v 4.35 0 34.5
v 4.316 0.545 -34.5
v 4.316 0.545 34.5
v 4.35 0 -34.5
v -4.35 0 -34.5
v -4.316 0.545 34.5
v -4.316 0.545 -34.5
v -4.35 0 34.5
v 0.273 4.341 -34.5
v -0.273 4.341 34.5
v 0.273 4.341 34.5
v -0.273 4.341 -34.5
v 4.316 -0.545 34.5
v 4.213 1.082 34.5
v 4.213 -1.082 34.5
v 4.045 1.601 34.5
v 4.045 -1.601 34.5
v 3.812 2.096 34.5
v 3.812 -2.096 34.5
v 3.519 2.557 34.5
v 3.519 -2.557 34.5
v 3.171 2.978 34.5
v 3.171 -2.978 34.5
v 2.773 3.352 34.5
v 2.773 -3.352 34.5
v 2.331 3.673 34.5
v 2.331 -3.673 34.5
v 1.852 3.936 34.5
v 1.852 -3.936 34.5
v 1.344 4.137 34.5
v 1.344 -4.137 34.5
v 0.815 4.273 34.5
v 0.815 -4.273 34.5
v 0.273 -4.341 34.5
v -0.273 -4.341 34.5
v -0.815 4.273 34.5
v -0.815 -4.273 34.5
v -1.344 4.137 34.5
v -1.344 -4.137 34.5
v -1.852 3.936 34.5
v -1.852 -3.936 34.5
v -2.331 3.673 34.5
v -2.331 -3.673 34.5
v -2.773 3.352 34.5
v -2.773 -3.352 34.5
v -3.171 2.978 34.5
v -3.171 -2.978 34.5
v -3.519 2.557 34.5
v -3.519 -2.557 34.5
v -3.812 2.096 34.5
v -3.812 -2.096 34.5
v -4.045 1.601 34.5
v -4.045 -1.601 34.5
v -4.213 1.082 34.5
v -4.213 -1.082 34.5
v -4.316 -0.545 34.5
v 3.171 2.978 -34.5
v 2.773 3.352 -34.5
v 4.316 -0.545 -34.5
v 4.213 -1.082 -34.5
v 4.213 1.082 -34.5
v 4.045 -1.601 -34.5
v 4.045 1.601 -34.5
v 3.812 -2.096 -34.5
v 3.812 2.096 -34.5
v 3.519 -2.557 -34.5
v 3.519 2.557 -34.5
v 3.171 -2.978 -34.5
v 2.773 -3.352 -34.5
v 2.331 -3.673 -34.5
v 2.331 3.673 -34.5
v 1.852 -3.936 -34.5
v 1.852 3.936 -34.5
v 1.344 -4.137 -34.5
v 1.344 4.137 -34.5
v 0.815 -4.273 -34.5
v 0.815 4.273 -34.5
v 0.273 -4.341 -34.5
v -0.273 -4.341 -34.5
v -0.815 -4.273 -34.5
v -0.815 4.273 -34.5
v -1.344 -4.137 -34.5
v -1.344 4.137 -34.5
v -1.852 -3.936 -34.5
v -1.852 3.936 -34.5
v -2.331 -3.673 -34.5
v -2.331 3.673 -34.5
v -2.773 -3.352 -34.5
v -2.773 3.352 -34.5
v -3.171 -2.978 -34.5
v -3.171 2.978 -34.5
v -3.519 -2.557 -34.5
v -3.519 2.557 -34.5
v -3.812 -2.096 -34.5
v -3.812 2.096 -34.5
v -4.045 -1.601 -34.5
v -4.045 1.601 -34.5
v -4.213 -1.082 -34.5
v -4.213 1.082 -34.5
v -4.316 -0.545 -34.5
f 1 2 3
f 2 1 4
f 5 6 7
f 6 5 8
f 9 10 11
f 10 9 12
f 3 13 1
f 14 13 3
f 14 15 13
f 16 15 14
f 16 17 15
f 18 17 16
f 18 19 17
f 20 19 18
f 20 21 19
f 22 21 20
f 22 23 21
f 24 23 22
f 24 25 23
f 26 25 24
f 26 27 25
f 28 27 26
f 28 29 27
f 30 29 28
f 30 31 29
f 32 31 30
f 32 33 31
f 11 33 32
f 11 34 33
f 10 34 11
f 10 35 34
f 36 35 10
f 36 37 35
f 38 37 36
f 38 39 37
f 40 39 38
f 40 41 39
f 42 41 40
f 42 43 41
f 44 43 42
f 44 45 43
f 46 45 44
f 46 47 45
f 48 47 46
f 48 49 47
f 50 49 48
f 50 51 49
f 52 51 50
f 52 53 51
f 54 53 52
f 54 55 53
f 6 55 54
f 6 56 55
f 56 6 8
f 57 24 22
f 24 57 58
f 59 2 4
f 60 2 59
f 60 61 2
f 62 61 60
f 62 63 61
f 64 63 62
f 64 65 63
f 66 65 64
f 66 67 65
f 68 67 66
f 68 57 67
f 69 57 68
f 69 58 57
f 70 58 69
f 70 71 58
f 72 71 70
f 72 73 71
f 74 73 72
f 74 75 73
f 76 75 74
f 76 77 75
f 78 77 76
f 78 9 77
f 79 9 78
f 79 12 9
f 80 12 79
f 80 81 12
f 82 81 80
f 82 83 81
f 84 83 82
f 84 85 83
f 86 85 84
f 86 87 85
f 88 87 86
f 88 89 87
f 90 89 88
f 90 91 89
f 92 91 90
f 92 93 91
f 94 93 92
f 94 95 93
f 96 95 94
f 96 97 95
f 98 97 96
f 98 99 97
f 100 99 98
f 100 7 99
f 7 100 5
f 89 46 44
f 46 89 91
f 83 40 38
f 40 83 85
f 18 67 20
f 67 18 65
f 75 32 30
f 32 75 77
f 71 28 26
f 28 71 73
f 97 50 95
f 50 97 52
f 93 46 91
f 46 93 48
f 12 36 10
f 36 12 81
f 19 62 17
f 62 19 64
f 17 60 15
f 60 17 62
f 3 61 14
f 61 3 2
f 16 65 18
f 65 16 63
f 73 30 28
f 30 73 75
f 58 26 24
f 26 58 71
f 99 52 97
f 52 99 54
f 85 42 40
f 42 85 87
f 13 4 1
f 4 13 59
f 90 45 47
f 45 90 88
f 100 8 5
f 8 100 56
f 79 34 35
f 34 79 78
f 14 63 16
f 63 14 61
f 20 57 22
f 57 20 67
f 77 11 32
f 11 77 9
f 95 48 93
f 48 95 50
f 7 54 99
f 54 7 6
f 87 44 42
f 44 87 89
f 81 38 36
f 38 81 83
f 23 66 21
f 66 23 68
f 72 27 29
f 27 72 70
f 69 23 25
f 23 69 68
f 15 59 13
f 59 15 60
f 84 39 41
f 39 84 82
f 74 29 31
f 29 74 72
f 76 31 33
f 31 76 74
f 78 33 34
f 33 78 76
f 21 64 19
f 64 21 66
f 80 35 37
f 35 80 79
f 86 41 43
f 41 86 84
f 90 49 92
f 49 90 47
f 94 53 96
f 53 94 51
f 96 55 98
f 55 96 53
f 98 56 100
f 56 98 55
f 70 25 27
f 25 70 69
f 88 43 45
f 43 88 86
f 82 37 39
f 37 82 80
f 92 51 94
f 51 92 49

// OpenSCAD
$fn = 50;


difference() {
	union() {
		translate(v = [0, 0, -34.5000000000]) {
			cylinder(h = 69, r = 4.3500000000);
		}
	}
	union() {
		translate(v = [0, 0, -100.0000000000]) {
			cylinder(h = 200, r = 0);
		}
	}
}
